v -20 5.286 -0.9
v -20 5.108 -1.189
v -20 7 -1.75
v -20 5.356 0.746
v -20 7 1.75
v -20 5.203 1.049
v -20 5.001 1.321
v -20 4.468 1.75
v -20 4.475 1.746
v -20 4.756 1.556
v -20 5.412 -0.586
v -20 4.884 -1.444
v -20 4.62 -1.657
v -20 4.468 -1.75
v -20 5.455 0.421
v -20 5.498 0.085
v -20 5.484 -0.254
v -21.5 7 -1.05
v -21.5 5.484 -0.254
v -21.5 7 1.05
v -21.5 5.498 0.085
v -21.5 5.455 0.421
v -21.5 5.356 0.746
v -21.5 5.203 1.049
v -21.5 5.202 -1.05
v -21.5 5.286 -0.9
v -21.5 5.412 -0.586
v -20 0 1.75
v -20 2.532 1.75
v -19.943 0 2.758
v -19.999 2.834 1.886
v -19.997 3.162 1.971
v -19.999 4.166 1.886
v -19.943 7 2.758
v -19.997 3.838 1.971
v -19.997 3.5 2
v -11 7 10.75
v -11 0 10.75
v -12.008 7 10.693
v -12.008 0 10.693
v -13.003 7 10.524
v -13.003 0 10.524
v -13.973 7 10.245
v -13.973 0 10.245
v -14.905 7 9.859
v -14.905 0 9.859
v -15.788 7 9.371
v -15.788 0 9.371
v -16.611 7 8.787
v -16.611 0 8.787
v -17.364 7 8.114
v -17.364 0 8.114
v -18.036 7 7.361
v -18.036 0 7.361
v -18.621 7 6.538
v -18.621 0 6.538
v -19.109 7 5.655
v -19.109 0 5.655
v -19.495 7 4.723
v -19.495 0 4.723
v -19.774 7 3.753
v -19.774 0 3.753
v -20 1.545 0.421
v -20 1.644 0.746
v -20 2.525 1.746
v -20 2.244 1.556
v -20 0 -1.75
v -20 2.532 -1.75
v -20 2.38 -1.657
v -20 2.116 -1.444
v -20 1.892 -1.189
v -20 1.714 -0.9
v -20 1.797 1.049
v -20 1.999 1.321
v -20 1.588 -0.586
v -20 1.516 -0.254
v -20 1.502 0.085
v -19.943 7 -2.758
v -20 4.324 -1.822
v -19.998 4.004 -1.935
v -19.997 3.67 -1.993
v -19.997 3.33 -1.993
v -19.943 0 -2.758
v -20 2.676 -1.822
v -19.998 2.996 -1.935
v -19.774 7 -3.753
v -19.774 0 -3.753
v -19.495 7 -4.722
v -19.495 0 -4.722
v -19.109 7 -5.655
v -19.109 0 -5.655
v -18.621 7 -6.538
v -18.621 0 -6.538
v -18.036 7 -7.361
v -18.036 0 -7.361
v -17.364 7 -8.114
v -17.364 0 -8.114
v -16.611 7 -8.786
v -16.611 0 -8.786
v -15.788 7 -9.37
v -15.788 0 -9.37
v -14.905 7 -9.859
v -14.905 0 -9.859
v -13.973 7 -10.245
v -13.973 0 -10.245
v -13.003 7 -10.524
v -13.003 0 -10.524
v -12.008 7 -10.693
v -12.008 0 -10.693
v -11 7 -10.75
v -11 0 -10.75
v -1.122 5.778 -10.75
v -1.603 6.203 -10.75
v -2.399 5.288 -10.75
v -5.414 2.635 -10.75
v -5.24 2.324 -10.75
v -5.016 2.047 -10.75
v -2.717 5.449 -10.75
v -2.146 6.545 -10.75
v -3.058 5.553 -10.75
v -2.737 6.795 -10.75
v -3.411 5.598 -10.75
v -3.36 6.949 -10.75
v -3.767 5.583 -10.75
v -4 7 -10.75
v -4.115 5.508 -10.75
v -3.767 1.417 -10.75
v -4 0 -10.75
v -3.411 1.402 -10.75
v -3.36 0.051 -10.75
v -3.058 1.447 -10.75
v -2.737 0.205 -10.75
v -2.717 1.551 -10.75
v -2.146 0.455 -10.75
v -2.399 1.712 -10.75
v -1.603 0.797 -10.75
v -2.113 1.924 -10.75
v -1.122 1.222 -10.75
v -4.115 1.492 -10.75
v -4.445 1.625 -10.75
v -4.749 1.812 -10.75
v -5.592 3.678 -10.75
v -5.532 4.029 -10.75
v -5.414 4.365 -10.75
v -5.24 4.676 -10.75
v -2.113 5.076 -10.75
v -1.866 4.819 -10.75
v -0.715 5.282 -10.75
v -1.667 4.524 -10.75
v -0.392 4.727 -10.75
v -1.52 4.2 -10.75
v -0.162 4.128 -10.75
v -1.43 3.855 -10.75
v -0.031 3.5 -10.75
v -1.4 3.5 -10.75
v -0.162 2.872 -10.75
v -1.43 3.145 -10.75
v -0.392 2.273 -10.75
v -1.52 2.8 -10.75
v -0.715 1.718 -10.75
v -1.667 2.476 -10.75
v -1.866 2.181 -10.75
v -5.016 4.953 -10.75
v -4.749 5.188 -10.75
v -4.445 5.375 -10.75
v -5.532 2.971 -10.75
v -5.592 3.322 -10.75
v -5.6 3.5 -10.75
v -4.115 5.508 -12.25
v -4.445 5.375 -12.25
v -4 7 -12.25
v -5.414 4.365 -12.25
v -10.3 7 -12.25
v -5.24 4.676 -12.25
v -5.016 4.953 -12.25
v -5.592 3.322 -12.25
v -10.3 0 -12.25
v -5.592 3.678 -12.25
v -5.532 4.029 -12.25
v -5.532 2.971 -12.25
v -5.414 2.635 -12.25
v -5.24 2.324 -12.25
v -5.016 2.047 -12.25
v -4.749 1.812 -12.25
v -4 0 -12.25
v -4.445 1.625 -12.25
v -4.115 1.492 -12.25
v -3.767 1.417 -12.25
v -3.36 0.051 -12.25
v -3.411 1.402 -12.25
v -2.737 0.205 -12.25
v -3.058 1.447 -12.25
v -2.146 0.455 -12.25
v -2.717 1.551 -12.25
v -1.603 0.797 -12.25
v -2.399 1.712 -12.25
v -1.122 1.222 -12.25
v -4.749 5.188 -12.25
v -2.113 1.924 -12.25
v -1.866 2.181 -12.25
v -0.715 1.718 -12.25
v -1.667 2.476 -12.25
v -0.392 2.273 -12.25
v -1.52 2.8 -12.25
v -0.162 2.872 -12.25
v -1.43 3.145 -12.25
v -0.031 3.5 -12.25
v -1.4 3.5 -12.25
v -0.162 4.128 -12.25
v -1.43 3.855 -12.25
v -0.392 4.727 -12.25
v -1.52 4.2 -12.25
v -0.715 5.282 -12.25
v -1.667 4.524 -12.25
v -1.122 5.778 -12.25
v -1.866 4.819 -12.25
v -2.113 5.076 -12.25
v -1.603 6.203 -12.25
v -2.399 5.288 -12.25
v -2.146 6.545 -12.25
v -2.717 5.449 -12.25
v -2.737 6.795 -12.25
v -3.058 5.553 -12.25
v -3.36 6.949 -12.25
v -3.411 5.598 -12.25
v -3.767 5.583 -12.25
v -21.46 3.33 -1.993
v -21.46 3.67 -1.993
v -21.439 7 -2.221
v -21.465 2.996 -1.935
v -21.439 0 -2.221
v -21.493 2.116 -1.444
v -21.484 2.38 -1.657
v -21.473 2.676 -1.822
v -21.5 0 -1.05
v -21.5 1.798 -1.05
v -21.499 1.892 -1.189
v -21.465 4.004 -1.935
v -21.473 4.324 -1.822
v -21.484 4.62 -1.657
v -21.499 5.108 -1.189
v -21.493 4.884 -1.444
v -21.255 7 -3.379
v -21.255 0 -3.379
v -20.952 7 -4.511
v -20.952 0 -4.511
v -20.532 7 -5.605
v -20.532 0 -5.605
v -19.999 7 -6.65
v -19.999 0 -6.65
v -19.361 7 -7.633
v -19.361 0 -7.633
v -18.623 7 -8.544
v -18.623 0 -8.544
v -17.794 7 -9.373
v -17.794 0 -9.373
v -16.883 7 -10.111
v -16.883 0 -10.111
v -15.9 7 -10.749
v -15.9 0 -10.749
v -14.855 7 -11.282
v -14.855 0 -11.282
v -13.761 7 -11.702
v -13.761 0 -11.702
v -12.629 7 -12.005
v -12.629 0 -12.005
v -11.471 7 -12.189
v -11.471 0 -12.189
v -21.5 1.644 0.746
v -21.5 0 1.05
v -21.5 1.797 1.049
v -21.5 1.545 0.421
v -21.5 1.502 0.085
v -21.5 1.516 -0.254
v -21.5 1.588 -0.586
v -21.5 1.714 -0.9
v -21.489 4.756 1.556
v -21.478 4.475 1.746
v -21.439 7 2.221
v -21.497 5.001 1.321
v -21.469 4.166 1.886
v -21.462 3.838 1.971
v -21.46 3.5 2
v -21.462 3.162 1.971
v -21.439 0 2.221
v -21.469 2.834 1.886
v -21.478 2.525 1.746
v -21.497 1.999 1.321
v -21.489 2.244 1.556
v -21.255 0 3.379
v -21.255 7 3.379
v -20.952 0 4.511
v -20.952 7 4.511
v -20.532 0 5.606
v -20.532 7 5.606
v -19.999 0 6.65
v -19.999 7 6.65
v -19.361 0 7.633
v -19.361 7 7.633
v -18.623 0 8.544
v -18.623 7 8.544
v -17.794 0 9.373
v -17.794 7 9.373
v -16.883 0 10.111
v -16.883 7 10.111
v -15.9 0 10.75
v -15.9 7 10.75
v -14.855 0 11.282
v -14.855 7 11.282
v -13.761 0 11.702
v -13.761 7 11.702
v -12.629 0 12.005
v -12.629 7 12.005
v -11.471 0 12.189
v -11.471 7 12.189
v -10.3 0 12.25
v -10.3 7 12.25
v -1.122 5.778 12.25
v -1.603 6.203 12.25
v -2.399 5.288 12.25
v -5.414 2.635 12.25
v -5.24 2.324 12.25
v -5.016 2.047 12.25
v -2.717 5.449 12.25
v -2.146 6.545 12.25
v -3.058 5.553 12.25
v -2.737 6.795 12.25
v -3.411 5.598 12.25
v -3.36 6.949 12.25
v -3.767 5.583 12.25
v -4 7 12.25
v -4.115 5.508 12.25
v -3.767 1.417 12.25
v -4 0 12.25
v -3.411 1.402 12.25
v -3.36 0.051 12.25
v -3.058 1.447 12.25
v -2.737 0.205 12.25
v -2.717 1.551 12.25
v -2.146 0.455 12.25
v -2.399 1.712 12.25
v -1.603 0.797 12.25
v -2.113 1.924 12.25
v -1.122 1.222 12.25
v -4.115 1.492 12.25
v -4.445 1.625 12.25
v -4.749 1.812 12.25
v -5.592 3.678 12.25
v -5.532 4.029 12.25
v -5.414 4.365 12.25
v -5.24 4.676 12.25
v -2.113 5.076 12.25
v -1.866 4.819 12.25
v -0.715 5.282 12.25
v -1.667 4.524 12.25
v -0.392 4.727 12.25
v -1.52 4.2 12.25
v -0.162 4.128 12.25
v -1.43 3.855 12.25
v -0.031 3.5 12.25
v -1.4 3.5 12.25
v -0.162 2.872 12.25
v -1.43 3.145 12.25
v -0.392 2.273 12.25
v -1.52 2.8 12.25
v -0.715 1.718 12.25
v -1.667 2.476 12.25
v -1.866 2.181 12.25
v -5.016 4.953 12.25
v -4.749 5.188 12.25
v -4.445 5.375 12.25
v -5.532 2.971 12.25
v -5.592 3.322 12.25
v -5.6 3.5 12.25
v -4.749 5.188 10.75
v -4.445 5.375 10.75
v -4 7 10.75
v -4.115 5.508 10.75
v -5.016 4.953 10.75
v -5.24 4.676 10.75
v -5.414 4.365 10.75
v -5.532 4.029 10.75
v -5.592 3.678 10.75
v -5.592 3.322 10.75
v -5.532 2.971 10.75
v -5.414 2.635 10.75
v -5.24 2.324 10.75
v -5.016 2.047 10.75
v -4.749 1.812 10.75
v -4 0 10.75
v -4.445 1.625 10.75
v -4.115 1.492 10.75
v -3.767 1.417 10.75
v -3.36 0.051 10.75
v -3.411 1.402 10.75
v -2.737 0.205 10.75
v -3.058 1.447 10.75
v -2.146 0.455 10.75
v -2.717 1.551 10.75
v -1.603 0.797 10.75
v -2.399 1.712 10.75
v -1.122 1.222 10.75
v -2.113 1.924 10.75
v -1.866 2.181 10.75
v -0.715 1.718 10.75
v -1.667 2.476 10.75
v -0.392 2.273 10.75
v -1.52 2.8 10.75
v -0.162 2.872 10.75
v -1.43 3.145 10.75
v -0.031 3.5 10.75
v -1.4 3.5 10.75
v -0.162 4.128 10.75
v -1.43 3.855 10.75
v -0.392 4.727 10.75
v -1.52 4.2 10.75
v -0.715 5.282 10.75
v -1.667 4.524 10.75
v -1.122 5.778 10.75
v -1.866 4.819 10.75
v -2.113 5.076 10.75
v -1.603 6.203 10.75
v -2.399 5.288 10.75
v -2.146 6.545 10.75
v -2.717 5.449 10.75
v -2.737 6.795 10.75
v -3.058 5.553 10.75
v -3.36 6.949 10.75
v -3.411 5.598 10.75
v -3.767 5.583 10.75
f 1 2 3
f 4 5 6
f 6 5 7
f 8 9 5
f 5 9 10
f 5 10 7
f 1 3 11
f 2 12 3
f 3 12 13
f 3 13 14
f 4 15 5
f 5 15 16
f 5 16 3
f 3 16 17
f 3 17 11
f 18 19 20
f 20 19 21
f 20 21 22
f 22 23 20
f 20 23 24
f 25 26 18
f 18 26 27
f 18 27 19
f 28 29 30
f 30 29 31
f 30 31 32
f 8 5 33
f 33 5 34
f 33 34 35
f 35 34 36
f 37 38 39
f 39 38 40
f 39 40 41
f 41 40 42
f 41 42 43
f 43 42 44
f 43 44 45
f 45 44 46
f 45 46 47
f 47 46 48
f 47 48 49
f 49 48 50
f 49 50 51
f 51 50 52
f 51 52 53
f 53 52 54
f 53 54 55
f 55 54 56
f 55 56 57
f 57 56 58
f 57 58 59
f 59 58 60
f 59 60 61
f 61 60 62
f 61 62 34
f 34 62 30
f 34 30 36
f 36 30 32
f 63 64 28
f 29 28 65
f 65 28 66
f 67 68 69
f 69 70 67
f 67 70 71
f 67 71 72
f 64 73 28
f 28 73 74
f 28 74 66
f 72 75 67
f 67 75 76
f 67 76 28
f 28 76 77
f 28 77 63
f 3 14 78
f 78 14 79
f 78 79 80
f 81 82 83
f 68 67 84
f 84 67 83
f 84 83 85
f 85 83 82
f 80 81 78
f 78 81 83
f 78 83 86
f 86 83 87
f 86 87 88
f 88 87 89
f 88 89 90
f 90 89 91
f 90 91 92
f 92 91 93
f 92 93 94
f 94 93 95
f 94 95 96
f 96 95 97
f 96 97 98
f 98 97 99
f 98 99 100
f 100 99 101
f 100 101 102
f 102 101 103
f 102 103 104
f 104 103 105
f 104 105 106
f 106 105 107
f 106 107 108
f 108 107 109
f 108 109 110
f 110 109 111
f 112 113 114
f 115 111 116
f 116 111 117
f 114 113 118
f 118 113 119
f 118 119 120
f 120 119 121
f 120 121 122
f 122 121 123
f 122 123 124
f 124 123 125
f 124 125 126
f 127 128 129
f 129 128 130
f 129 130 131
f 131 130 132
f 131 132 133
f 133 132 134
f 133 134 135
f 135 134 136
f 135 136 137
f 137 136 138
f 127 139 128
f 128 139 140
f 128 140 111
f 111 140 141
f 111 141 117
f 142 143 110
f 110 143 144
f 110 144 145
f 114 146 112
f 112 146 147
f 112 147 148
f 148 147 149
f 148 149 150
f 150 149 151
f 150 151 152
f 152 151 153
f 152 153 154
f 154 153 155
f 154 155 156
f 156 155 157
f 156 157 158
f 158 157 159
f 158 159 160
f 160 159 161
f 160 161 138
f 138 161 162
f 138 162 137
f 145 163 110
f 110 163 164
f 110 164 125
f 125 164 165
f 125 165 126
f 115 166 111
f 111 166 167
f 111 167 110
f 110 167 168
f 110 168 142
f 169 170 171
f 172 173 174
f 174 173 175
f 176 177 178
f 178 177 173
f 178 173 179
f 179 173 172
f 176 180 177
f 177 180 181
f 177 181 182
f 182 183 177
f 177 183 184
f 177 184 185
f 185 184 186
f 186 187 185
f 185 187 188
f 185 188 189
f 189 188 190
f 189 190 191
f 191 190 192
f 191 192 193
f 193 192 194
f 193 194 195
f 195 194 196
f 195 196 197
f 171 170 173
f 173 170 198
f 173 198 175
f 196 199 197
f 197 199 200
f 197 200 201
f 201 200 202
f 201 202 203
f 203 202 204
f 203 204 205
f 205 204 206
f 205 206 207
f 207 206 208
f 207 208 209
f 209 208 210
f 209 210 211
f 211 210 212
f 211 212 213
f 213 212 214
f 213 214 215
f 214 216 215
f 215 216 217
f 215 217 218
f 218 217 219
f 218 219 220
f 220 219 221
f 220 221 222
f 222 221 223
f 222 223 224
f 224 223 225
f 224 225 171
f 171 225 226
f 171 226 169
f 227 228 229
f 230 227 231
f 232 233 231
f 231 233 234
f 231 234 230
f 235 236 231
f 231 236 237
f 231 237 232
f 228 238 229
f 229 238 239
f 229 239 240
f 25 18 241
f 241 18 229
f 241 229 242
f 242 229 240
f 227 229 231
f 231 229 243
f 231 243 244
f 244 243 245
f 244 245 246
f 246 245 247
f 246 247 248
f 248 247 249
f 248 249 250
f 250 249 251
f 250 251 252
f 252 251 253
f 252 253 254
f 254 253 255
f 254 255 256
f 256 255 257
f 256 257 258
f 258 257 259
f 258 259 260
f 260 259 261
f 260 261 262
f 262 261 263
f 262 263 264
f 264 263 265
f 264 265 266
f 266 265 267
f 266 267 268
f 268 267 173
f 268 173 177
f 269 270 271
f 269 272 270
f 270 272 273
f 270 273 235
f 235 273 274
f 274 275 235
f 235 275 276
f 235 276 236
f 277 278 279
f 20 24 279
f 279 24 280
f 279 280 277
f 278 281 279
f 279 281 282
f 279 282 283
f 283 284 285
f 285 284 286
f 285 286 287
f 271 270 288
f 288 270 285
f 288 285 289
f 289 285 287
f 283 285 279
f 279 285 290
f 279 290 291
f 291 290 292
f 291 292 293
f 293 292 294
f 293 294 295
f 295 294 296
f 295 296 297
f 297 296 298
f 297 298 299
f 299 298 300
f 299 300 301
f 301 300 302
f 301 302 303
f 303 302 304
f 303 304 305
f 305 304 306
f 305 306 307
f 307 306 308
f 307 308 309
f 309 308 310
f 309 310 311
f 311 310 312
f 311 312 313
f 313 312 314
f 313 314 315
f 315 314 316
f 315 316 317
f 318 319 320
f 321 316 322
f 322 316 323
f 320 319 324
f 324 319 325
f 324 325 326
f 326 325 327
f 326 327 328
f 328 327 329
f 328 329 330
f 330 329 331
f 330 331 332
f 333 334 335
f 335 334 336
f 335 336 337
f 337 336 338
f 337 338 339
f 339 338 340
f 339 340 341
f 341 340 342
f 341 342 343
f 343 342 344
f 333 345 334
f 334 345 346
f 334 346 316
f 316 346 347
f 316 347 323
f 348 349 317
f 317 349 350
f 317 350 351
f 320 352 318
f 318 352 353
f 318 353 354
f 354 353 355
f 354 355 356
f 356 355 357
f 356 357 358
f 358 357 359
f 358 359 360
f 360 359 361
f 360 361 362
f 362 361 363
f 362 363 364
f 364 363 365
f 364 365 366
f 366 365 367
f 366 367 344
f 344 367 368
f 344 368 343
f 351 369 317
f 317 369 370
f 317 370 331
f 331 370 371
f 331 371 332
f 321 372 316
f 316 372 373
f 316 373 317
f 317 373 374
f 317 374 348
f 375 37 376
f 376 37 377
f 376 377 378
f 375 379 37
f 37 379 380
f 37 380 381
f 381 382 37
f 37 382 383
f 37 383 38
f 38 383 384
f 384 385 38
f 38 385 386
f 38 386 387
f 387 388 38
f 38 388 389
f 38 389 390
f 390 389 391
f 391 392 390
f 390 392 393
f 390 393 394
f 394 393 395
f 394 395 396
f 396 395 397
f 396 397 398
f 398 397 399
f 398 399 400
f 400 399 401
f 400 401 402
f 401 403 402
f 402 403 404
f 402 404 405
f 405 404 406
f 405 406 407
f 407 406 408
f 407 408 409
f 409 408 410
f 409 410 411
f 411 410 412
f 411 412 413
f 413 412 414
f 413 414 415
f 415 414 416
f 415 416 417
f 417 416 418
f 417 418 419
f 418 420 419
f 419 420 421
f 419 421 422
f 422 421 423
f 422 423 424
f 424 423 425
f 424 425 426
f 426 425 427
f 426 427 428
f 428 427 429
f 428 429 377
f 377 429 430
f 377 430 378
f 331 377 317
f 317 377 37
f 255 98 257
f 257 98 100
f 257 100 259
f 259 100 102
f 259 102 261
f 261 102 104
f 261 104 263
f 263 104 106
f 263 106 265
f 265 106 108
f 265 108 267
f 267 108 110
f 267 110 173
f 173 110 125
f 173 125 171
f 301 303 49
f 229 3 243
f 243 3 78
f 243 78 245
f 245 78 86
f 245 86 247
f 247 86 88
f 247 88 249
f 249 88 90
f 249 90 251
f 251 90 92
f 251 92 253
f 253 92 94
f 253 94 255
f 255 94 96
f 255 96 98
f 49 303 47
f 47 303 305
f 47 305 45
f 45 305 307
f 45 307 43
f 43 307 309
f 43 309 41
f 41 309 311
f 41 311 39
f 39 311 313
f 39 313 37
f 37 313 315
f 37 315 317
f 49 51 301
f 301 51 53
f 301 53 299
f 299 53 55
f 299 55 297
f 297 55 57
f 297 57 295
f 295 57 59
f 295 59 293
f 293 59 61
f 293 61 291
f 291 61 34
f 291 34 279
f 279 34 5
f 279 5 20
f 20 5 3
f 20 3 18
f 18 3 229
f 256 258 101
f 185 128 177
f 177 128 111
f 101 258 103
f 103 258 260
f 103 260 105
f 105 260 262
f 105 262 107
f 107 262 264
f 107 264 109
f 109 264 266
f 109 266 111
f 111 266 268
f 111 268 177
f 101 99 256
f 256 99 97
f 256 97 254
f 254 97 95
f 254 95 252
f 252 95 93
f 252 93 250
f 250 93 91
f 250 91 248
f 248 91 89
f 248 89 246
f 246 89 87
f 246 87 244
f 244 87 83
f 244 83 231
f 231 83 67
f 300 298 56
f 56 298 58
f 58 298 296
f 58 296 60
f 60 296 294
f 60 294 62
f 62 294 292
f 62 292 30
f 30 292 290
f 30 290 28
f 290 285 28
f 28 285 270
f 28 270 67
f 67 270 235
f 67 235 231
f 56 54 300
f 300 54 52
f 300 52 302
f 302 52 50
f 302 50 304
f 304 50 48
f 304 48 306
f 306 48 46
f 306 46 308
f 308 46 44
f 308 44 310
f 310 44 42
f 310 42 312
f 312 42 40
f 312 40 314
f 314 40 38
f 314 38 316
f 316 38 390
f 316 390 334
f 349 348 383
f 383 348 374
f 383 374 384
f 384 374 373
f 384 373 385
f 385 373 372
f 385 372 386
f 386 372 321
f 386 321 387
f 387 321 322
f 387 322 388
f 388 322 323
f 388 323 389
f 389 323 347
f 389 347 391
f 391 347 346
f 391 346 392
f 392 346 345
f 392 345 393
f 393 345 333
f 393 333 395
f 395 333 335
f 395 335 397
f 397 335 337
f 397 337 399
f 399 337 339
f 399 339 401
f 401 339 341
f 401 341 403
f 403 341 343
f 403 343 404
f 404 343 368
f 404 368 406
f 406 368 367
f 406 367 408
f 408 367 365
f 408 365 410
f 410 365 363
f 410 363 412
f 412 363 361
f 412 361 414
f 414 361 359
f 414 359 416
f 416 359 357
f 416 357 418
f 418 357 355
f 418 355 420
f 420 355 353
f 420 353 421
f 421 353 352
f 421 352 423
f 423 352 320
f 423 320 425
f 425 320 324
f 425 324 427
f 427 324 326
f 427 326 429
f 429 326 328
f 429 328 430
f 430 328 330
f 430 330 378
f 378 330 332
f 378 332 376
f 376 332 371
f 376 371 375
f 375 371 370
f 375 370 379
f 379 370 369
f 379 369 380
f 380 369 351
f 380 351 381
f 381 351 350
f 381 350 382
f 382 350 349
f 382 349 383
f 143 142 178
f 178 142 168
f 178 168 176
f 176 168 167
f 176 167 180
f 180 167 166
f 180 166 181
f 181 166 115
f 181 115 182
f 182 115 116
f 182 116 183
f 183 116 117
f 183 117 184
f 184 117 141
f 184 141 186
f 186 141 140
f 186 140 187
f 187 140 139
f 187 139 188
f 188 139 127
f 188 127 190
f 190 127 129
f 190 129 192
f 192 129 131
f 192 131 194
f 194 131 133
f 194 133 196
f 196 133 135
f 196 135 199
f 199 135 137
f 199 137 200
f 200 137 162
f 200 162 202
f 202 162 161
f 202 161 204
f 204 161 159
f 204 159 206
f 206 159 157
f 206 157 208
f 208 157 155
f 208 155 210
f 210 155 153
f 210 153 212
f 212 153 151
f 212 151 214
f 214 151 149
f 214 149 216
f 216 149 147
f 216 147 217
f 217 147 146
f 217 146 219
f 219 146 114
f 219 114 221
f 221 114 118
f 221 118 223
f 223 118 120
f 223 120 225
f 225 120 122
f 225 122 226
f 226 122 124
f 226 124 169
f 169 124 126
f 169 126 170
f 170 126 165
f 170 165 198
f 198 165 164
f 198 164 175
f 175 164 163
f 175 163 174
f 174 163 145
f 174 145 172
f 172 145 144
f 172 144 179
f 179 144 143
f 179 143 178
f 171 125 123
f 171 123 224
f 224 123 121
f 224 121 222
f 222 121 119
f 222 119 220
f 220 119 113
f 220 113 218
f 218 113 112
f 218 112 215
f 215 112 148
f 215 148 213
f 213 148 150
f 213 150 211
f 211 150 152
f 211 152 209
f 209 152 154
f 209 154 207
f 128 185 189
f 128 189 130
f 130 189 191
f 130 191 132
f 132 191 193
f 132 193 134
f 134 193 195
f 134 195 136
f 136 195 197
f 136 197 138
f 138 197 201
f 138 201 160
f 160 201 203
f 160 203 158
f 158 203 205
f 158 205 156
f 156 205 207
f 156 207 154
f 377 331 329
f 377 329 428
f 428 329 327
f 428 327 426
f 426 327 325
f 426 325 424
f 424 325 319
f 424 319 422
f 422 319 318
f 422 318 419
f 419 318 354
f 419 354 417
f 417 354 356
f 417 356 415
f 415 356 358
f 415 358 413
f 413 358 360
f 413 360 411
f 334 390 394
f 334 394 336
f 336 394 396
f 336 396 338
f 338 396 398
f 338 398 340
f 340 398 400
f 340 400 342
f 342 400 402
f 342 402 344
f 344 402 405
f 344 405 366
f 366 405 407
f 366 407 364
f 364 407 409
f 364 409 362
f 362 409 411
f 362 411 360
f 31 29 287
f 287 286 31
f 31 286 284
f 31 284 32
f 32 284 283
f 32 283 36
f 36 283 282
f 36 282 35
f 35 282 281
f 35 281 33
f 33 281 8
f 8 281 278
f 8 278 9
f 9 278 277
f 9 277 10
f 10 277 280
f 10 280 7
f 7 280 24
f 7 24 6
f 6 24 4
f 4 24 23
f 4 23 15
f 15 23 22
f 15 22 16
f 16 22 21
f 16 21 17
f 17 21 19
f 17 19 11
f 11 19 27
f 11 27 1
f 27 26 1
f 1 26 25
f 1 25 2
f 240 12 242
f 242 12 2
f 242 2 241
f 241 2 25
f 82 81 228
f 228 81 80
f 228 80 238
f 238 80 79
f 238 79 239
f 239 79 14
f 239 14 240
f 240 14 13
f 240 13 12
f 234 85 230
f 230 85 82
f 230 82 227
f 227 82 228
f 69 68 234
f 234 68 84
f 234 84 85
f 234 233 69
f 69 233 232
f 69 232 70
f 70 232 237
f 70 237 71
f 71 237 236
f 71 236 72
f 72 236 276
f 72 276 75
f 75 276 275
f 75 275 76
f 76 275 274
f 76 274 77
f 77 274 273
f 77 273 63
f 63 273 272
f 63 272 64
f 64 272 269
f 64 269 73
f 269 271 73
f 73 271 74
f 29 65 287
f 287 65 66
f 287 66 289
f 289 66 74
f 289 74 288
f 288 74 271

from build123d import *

# Parameters (mm, degrees)
EXTRUDE_1_DEPTH          = 7
CUT_EXTRUDE_1_DEPTH      = 34.339166156
CUT_EXTRUDE_1_DEPTH_BACK = 34.339166156
SKETCH_2_R               = 2.1
FILLET_1_R               = 4
CUT_EXTRUDE_2_DEPTH      = 26.689773137
CUT_EXTRUDE_2_DEPTH_BACK = 26.689773137
SKETCH_3_R               = 2


with BuildPart() as part:
    # Эскиз1 → Бобышка-Вытянуть1 (new body)
    with BuildSketch(Plane(origin=(0, 0, 0), x_dir=(1, 0, 0), z_dir=(0, 1, 0))):
        with BuildLine():
            Line((0, 10.75), (0, 12.25))
            Line((0, 12.25), (-10.3, 12.25))
            ThreePointArc((-10.3, 12.25), (-18.219595949, 8.969595949), (-21.5, 1.05))
            Line((-21.5, 1.05), (-21.5, -1.05))
            ThreePointArc((-21.5, -1.05), (-18.219595949, -8.969595949), (-10.3, -12.25))
            Line((-10.3, -12.25), (0, -12.25))
            Line((0, -12.25), (0, -10.75))
            Line((0, -10.75), (-11, -10.75))
            ThreePointArc((-11, -10.75), (-17.363961031, -8.113961031), (-20, -1.75))
            Line((-20, -1.75), (-20, 1.75))
            ThreePointArc((-20, 1.75), (-17.363961031, 8.113961031), (-11, 10.75))
            Line((-11, 10.75), (0, 10.75))
        make_face()
    extrude(amount=EXTRUDE_1_DEPTH)

    # Эскиз2 → Вырез-Вытянуть1 (cut, two sides: drawn at the far end of the back side and taken through both)
    with BuildSketch(Plane.XY.offset(12.25).offset(-CUT_EXTRUDE_1_DEPTH_BACK)):
        with Locations((-3.5, 3.5)):
            Circle(SKETCH_2_R)
    extrude(amount=CUT_EXTRUDE_1_DEPTH + CUT_EXTRUDE_1_DEPTH_BACK, mode=Mode.SUBTRACT)

    # Скругление1
    # the kernel refuses this fillet: 4 mm, written as the material it takes off along each edge
    with BuildSketch(Plane(origin=(0, 0, -0.75), x_dir=(-1, 0, 0), z_dir=(0, 0, -1)), Plane(origin=(0, 0, 22.25), x_dir=(-1, 0, 0), z_dir=(0, 0, -1))) as fillet_1_piece_1:
        with BuildLine():
            CenterArc((FILLET_1_R, FILLET_1_R), FILLET_1_R, 180, 90)
            Line((0, FILLET_1_R), (0, 0))
            Line((0, 0), (FILLET_1_R, 0))
        make_face()
    extrude(amount=21.5, mode=Mode.SUBTRACT)
    with BuildSketch(Plane(origin=(0, 7, -0.75), x_dir=(-1, 0, 0), z_dir=(0, 0, -1)), Plane(origin=(0, 7, 22.25), x_dir=(-1, 0, 0), z_dir=(0, 0, -1))) as fillet_1_piece_2:
        with BuildLine():
            CenterArc((FILLET_1_R, -FILLET_1_R), FILLET_1_R, 90, 90)
            Line((0, -FILLET_1_R), (0, 0))
            Line((0, 0), (FILLET_1_R, 0))
        make_face()
    extrude(amount=21.5, mode=Mode.SUBTRACT)

    # Эскиз3 → Вырез-Вытянуть2 (cut, two sides: drawn at the far end of the back side and taken through both)
    with BuildSketch(Plane.ZY.offset(21.5).offset(-CUT_EXTRUDE_2_DEPTH_BACK)):
        with Locations(Location((0, 3.5, 0), (0, 0, 28.955024372))):
            Circle(SKETCH_3_R)
    extrude(amount=CUT_EXTRUDE_2_DEPTH + CUT_EXTRUDE_2_DEPTH_BACK, mode=Mode.SUBTRACT)


solid = part.part
